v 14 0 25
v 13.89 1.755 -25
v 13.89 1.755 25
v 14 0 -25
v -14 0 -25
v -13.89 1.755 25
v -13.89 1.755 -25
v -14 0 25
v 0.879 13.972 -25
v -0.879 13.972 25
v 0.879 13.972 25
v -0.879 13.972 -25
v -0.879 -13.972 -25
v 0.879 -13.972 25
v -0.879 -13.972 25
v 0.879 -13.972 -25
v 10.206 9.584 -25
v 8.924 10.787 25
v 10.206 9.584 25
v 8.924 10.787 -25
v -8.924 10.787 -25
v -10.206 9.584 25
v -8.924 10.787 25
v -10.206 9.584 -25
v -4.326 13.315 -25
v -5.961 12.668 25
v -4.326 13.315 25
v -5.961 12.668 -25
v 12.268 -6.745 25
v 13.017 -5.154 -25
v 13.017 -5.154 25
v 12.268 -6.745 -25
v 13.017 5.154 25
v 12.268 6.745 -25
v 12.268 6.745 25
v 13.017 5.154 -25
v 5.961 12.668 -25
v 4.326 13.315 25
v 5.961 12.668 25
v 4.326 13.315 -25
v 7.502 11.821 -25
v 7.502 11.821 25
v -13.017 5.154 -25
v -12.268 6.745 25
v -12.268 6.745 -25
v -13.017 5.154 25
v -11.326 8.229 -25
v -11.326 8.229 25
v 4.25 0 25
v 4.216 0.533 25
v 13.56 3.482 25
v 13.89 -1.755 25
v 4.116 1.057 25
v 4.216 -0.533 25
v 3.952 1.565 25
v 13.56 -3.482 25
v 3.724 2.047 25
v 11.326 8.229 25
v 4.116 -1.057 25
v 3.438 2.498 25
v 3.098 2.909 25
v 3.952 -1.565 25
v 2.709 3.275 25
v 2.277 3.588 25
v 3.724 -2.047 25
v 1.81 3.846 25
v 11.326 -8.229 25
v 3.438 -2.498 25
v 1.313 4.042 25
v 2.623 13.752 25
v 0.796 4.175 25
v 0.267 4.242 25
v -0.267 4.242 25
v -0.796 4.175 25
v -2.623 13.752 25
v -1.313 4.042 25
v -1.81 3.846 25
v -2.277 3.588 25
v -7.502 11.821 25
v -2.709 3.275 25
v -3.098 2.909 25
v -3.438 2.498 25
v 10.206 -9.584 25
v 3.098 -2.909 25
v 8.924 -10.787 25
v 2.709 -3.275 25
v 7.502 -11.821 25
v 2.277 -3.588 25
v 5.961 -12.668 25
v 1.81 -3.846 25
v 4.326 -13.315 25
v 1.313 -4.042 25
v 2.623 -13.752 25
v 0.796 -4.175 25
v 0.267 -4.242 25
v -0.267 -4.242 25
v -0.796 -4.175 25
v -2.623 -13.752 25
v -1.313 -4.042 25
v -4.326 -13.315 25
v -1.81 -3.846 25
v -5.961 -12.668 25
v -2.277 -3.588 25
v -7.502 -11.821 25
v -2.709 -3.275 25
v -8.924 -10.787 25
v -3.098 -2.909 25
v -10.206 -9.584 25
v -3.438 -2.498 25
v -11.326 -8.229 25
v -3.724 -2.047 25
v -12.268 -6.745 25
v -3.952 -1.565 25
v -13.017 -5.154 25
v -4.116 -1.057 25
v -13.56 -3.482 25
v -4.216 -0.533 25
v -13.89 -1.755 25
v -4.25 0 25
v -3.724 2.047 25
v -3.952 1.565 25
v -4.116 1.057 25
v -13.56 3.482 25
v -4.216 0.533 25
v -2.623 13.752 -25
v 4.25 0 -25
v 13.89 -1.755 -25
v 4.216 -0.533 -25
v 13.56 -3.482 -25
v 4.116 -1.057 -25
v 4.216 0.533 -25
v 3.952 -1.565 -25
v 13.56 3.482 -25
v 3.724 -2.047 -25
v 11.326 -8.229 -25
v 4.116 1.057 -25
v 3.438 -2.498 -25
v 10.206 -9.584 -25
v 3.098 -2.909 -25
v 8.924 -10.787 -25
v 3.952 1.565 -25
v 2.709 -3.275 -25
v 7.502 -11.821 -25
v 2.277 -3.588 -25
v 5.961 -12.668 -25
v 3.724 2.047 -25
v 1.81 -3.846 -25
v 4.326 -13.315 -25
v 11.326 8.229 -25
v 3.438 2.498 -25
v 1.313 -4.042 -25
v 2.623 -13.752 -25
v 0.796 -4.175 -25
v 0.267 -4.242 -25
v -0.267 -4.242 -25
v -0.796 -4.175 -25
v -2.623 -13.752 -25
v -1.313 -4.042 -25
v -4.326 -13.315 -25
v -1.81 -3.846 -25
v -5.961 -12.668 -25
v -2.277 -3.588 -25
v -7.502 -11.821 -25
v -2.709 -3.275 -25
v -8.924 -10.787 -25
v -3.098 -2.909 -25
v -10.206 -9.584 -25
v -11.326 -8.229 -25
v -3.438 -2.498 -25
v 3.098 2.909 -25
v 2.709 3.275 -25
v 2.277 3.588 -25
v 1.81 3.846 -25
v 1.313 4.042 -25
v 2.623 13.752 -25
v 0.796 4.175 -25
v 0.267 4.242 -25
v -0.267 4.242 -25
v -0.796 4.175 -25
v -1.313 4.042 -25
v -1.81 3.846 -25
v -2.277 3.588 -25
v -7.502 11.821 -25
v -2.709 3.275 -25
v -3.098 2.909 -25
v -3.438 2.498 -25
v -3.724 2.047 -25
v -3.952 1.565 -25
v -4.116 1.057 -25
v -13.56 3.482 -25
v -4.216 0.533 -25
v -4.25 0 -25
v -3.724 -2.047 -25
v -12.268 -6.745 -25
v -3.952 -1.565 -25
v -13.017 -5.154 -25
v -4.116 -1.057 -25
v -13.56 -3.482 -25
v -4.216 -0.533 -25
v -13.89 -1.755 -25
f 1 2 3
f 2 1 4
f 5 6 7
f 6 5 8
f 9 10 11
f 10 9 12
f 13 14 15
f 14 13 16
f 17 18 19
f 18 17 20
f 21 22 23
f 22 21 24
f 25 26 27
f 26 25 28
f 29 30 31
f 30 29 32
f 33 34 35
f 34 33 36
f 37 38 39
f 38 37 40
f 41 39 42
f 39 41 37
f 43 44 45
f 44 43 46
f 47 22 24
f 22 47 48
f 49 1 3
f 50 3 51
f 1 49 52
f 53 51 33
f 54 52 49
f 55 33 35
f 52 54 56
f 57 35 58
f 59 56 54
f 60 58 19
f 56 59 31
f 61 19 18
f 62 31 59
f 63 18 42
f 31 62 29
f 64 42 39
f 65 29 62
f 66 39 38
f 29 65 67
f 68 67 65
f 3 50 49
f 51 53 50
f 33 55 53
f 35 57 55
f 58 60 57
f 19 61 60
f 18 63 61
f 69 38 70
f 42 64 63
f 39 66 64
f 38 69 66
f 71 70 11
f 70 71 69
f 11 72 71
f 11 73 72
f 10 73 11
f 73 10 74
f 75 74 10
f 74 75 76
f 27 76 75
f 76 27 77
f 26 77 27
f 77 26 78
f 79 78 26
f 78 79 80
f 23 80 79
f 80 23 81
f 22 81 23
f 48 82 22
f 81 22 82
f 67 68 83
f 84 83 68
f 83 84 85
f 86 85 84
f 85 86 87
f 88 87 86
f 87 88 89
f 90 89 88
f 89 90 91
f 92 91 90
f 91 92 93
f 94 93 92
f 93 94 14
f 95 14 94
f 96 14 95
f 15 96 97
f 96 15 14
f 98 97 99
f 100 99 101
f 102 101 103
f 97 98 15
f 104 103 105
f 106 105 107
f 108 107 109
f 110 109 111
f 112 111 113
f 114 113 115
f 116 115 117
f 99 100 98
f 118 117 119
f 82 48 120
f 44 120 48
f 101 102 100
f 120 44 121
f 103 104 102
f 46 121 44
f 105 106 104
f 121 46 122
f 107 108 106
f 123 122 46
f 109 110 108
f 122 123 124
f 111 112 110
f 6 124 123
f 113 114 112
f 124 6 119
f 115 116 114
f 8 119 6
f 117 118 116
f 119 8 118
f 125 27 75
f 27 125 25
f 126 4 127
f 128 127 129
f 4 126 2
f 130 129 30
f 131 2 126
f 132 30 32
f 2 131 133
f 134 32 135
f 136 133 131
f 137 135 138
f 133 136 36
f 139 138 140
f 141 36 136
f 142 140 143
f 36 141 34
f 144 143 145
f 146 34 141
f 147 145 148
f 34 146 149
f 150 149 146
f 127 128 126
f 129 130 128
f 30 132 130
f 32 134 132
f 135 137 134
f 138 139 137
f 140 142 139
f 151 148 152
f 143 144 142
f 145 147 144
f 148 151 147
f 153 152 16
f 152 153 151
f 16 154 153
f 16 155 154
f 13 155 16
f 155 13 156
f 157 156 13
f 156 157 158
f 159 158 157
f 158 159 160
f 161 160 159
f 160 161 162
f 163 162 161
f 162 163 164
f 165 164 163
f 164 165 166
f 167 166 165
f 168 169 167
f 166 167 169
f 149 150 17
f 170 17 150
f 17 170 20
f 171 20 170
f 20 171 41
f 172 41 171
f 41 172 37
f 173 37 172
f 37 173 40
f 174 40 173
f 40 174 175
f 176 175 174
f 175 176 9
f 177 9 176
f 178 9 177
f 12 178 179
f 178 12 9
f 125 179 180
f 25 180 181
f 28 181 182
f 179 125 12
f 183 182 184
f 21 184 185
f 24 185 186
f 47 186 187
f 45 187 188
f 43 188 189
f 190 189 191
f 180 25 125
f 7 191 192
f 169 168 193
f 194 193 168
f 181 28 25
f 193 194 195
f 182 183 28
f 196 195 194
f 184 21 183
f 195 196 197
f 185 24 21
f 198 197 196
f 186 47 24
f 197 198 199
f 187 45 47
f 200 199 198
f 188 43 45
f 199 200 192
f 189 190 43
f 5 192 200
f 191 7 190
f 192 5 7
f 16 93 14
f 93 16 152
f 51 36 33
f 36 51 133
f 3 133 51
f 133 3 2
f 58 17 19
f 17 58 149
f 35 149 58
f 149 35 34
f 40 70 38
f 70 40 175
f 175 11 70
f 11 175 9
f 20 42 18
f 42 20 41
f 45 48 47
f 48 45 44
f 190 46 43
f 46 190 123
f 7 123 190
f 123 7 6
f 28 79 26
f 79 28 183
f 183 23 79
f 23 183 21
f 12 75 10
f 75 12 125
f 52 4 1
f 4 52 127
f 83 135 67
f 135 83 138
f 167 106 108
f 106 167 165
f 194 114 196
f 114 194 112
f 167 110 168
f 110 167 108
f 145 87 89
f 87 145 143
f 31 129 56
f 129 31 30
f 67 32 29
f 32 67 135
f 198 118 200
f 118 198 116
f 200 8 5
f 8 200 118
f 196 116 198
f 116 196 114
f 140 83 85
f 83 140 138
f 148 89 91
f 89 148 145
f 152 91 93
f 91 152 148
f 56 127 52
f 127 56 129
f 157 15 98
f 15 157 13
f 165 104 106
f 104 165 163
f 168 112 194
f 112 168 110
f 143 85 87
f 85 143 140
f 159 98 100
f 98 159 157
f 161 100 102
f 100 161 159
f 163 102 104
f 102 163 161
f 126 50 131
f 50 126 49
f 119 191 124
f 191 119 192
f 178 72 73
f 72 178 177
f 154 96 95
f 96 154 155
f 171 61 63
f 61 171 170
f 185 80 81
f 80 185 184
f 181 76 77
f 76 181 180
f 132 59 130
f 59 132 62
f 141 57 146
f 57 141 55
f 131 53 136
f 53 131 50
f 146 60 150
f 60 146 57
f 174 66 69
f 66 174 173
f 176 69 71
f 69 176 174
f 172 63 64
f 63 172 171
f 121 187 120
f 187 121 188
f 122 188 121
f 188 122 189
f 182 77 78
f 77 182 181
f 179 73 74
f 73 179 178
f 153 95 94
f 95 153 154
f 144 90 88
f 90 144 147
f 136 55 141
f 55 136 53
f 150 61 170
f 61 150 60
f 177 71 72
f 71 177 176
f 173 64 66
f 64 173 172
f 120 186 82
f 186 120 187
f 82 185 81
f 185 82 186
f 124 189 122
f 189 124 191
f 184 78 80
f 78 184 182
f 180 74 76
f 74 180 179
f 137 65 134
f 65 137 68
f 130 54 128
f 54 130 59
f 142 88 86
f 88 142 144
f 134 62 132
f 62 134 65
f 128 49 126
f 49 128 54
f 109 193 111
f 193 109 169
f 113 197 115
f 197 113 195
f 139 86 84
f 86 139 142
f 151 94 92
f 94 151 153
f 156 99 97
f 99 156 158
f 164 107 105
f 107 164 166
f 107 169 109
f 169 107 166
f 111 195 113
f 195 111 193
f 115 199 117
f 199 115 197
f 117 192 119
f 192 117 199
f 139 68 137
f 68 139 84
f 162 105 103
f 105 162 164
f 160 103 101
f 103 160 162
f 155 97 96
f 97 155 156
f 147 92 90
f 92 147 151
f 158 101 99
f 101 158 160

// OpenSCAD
$fn = 50;


difference() {
	union() {
		translate(v = [0, 0, -25.0000000000]) {
			cylinder(h = 50, r = 14.0000000000);
		}
	}
	union() {
		translate(v = [0, 0, -100.0000000000]) {
			cylinder(h = 200, r = 4.2500000000);
		}
	}
}
